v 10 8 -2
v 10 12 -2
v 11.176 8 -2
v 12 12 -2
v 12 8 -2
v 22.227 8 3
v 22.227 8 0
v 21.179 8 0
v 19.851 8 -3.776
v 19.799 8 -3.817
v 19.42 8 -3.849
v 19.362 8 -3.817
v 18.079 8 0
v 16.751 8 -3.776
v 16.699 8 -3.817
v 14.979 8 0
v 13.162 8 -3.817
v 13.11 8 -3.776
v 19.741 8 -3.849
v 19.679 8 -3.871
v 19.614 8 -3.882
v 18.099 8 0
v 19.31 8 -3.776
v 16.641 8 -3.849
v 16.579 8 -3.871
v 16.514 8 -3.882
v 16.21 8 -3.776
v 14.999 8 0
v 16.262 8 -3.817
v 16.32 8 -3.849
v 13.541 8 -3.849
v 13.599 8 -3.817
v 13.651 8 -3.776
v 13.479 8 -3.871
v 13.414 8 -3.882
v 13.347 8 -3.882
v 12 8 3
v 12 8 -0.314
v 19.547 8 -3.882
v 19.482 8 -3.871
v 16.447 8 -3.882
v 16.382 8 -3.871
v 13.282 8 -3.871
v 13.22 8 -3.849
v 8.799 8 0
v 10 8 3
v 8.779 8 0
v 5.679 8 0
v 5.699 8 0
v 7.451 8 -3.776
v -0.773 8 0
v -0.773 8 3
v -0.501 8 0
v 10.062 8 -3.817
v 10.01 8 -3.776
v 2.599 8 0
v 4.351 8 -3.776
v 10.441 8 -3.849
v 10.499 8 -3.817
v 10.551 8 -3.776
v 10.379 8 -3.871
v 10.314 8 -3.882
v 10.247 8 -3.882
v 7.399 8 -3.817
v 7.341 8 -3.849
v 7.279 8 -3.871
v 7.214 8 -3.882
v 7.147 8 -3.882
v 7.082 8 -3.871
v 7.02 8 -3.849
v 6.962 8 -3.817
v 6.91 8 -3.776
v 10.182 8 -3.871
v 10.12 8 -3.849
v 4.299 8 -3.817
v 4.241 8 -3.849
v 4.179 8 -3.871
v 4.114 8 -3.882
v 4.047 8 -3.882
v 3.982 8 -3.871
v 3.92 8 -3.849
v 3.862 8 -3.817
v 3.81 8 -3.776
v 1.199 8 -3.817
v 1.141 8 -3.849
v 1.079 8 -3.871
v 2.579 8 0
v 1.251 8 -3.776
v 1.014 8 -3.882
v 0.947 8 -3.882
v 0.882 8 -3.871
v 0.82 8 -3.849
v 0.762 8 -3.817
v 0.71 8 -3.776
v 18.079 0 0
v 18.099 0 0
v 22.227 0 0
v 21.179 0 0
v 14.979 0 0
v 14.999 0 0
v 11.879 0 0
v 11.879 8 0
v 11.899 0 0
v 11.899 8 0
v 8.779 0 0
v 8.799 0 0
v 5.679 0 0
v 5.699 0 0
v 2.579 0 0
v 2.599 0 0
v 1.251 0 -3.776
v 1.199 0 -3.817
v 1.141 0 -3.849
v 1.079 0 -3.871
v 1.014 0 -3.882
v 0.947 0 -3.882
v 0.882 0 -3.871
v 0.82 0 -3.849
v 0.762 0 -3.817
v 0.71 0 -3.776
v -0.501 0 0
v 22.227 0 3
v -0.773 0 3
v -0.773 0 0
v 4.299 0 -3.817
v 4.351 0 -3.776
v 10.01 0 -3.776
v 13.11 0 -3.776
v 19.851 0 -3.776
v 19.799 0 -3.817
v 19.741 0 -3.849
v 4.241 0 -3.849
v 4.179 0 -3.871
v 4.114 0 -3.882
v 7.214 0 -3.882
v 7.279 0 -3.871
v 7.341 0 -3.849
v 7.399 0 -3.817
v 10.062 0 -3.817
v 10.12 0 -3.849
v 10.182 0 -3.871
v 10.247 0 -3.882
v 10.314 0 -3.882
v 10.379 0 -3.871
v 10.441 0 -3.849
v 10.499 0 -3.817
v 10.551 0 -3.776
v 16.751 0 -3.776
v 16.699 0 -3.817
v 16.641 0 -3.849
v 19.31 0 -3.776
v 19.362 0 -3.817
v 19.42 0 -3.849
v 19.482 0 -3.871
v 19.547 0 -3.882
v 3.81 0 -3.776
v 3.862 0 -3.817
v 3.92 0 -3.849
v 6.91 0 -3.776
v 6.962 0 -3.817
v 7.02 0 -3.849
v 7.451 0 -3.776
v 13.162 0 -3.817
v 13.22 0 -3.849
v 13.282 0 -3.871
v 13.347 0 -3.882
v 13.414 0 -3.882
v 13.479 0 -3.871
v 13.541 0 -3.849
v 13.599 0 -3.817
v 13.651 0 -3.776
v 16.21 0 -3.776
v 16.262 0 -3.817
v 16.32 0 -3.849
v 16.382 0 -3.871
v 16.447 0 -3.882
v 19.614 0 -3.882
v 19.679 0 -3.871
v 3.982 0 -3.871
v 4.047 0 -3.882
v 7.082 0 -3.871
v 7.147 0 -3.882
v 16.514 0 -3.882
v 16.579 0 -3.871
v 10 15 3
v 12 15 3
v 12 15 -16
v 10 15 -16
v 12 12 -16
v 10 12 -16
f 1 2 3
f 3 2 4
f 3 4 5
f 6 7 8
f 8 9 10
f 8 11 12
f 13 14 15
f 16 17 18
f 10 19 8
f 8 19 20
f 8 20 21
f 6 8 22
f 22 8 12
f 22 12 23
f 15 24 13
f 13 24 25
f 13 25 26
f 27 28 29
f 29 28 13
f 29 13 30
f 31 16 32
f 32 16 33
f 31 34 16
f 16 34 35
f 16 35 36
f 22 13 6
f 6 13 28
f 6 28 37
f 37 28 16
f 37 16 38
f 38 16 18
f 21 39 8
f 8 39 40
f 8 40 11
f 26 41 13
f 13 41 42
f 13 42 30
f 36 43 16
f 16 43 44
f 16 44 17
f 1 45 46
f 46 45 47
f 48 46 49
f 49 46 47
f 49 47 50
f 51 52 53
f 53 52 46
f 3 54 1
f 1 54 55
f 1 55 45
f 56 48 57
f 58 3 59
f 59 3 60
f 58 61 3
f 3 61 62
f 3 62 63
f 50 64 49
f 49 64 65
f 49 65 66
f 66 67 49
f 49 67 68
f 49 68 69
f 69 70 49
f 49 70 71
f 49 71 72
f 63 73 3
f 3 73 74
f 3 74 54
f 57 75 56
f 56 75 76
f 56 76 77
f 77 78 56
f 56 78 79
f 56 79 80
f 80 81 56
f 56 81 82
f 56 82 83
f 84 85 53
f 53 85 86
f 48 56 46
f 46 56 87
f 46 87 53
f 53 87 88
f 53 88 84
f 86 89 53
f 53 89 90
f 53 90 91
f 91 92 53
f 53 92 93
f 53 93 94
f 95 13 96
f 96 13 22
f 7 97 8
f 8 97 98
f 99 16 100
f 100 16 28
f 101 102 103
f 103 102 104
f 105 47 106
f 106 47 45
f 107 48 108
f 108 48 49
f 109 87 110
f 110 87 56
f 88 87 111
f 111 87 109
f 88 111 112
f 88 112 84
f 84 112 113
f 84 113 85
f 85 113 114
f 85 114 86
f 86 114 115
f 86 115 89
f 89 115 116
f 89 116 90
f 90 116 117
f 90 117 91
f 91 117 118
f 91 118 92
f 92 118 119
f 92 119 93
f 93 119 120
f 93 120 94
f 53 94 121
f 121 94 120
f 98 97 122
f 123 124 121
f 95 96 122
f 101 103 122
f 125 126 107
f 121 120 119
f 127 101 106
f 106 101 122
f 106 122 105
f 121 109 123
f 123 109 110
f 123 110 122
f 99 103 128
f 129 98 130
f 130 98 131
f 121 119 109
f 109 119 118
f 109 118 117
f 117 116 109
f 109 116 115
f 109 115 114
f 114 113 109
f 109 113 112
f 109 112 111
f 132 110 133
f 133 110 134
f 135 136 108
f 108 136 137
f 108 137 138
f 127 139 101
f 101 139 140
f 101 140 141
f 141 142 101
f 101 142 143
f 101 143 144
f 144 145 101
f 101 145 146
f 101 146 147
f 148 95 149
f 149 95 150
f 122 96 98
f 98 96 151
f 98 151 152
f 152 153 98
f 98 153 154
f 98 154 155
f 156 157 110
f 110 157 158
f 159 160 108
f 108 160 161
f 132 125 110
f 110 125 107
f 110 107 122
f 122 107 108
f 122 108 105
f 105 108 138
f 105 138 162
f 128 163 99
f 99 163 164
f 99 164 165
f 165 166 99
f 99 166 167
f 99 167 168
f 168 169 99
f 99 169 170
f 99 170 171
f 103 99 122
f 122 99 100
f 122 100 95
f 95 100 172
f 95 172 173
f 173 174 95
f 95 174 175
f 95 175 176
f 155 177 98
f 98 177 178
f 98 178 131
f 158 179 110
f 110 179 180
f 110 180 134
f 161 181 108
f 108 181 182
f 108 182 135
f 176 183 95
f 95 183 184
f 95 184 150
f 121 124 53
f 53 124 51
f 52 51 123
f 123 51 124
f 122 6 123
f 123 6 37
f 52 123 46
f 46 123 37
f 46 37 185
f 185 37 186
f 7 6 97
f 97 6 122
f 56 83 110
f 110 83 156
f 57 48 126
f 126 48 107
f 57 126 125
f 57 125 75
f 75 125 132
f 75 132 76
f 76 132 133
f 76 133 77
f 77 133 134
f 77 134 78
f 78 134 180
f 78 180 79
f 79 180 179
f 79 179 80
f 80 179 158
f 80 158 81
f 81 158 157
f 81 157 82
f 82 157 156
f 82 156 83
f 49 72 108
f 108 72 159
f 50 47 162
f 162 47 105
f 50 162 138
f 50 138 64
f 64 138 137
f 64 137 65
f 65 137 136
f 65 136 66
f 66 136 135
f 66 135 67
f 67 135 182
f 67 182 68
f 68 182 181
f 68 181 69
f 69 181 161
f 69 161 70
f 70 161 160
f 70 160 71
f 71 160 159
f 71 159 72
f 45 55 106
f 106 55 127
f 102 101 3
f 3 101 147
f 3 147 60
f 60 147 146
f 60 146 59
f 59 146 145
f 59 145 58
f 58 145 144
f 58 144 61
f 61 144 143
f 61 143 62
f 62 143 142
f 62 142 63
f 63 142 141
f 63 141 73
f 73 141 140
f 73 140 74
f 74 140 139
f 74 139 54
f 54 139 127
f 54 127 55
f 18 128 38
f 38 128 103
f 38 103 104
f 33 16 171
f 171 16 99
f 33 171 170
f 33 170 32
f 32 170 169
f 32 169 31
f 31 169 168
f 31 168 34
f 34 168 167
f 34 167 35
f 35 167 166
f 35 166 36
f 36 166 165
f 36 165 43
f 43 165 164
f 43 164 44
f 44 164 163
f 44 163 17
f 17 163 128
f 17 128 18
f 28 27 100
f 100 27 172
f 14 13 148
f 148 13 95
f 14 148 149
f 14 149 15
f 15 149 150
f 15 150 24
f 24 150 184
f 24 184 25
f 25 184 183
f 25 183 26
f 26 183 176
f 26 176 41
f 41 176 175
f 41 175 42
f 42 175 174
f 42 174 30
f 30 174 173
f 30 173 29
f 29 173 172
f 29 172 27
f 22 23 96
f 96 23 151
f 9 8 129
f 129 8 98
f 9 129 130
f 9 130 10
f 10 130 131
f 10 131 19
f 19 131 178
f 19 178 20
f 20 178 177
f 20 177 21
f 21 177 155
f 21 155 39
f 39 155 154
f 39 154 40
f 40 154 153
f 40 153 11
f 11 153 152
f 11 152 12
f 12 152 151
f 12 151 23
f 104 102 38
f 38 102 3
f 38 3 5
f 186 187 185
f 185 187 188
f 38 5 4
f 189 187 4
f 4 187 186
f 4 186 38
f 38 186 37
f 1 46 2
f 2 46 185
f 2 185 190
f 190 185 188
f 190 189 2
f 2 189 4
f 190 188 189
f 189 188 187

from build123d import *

# Parameters (mm, degrees)
BOSS_EXTRUDE1_DEPTH   = 8
BOSS_EXTRUDE1_2_DEPTH = 8
BOSS_EXTRUDE1_3_DEPTH = 8
BOSS_EXTRUDE1_4_DEPTH = 8
BOSS_EXTRUDE1_5_DEPTH = 8
BOSS_EXTRUDE1_6_DEPTH = 8
BOSS_EXTRUDE1_7_DEPTH = 8
BASE_W                = 23
BASE_H                = 3
BOSS_EXTRUDE2_DEPTH   = 8
SKETCH1_W             = 5
SKETCH1_H             = 7
BOSS_EXTRUDE3_DEPTH   = 2
SKETCH2_W             = 2
SKETCH2_H             = 3
BOSS_EXTRUDE4_DEPTH   = 14


with BuildPart() as part:
    # Gears-1 → Boss-Extrude1 (new body)
    with BuildSketch(Plane(origin=(0, 0, 0), x_dir=(1, 0, 0), z_dir=(0, 1, 0))):
        with BuildLine():
            Line((-0.500594601, 0), (0.709644096, 3.775809937))
            ThreePointArc((0.709644096, 3.775809937), (0.980506814, 3.882987586), (1.251369531, 3.775809937))
            Line((1.251369531, 3.775809937), (2.579049224, 0))
            Line((2.579049224, 0), (-0.500594601, 0))
        make_face()
    extrude(amount=BOSS_EXTRUDE1_DEPTH)



with BuildPart() as body_2:
    # Gears-1 → Boss-Extrude1 2 (new body)
    with BuildSketch(Plane(origin=(0, 0, 0), x_dir=(1, 0, 0), z_dir=(0, 1, 0))):
        with BuildLine():
            Line((2.599405399, 0), (5.679049224, 0))
            Line((5.679049224, 0), (4.351369531, 3.775809937))
            ThreePointArc((4.351369531, 3.775809937), (4.080506814, 3.882987586), (3.809644096, 3.775809937))
            Line((3.809644096, 3.775809937), (2.599405399, 0))
        make_face()
    extrude(amount=BOSS_EXTRUDE1_2_DEPTH)


with BuildPart() as body_3:
    # Gears-1 → Boss-Extrude1 3 (new body)
    with BuildSketch(Plane(origin=(0, 0, 0), x_dir=(1, 0, 0), z_dir=(0, 1, 0))):
        with BuildLine():
            Line((5.699405399, 0), (8.779049224, 0))
            Line((8.779049224, 0), (7.451369531, 3.775809937))
            ThreePointArc((7.451369531, 3.775809937), (7.180506814, 3.882987586), (6.909644096, 3.775809937))
            Line((6.909644096, 3.775809937), (5.699405399, 0))
        make_face()
    extrude(amount=BOSS_EXTRUDE1_3_DEPTH)


with BuildPart() as body_4:
    # Gears-1 → Boss-Extrude1 4 (new body)
    with BuildSketch(Plane(origin=(0, 0, 0), x_dir=(1, 0, 0), z_dir=(0, 1, 0))):
        with BuildLine():
            Line((8.799405399, 0), (11.879049224, 0))
            Line((11.879049224, 0), (10.551369531, 3.775809937))
            ThreePointArc((10.551369531, 3.775809937), (10.280506814, 3.882987586), (10.009644096, 3.775809937))
            Line((10.009644096, 3.775809937), (8.799405399, 0))
        make_face()
    extrude(amount=BOSS_EXTRUDE1_4_DEPTH)


with BuildPart() as body_5:
    # Gears-1 → Boss-Extrude1 5 (new body)
    with BuildSketch(Plane(origin=(0, 0, 0), x_dir=(1, 0, 0), z_dir=(0, 1, 0))):
        with BuildLine():
            Line((11.899405399, 0), (14.979049224, 0))
            Line((14.979049224, 0), (13.651369531, 3.775809937))
            ThreePointArc((13.651369531, 3.775809937), (13.380506814, 3.882987586), (13.109644096, 3.775809937))
            Line((13.109644096, 3.775809937), (11.899405399, 0))
        make_face()
    extrude(amount=BOSS_EXTRUDE1_5_DEPTH)


with BuildPart() as body_6:
    # Gears-1 → Boss-Extrude1 6 (new body)
    with BuildSketch(Plane(origin=(0, 0, 0), x_dir=(1, 0, 0), z_dir=(0, 1, 0))):
        with BuildLine():
            Line((14.999405399, 0), (18.079049224, 0))
            Line((18.079049224, 0), (16.751369531, 3.775809937))
            ThreePointArc((16.751369531, 3.775809937), (16.480506814, 3.882987586), (16.209644096, 3.775809937))
            Line((16.209644096, 3.775809937), (14.999405399, 0))
        make_face()
    extrude(amount=BOSS_EXTRUDE1_6_DEPTH)


with BuildPart() as body_7:
    # Gears-1 → Boss-Extrude1 7 (new body)
    with BuildSketch(Plane(origin=(0, 0, 0), x_dir=(1, 0, 0), z_dir=(0, 1, 0))):
        with BuildLine():
            Line((18.099405399, 0), (21.179049224, 0))
            Line((21.179049224, 0), (19.851369531, 3.775809937))
            ThreePointArc((19.851369531, 3.775809937), (19.580506814, 3.882987586), (19.309644096, 3.775809937))
            Line((19.309644096, 3.775809937), (18.099405399, 0))
        make_face()
    extrude(amount=BOSS_EXTRUDE1_7_DEPTH)


with BuildPart() as part_1:
    add(part.part)

    add(body_2.part)  # Boss-Extrude2 merges body 2

    add(body_3.part)  # Boss-Extrude2 merges body 3

    add(body_4.part)  # Boss-Extrude2 merges body 4

    add(body_5.part)  # Boss-Extrude2 merges body 5

    add(body_6.part)  # Boss-Extrude2 merges body 6

    add(body_7.part)  # Boss-Extrude2 merges body 7
    # Base → Boss-Extrude2 (add)
    with BuildSketch(Plane(origin=(0, 0, 0), x_dir=(1, 0, 0), z_dir=(0, 1, 0))):
        with Locations((10.726532056, -1.5)):
            Rectangle(BASE_W, BASE_H)
    extrude(amount=BOSS_EXTRUDE2_DEPTH)

    # Sketch1 → Boss-Extrude3 (add)
    with BuildSketch(Plane(origin=(10, 0, 0), x_dir=(0, 0, -1), z_dir=(1, 0, 0))):
        with Locations((-0.5, 11.5)):
            Rectangle(SKETCH1_W, SKETCH1_H)
    extrude(amount=BOSS_EXTRUDE3_DEPTH)

    # Sketch2 → Boss-Extrude4 (add)
    with BuildSketch(Plane(origin=(0, 0, -2), x_dir=(-1, 0, 0), z_dir=(0, 0, -1))):
        with Locations((-11, 13.5)):
            Rectangle(SKETCH2_W, SKETCH2_H)
    extrude(amount=BOSS_EXTRUDE4_DEPTH)


solid = part_1.part
